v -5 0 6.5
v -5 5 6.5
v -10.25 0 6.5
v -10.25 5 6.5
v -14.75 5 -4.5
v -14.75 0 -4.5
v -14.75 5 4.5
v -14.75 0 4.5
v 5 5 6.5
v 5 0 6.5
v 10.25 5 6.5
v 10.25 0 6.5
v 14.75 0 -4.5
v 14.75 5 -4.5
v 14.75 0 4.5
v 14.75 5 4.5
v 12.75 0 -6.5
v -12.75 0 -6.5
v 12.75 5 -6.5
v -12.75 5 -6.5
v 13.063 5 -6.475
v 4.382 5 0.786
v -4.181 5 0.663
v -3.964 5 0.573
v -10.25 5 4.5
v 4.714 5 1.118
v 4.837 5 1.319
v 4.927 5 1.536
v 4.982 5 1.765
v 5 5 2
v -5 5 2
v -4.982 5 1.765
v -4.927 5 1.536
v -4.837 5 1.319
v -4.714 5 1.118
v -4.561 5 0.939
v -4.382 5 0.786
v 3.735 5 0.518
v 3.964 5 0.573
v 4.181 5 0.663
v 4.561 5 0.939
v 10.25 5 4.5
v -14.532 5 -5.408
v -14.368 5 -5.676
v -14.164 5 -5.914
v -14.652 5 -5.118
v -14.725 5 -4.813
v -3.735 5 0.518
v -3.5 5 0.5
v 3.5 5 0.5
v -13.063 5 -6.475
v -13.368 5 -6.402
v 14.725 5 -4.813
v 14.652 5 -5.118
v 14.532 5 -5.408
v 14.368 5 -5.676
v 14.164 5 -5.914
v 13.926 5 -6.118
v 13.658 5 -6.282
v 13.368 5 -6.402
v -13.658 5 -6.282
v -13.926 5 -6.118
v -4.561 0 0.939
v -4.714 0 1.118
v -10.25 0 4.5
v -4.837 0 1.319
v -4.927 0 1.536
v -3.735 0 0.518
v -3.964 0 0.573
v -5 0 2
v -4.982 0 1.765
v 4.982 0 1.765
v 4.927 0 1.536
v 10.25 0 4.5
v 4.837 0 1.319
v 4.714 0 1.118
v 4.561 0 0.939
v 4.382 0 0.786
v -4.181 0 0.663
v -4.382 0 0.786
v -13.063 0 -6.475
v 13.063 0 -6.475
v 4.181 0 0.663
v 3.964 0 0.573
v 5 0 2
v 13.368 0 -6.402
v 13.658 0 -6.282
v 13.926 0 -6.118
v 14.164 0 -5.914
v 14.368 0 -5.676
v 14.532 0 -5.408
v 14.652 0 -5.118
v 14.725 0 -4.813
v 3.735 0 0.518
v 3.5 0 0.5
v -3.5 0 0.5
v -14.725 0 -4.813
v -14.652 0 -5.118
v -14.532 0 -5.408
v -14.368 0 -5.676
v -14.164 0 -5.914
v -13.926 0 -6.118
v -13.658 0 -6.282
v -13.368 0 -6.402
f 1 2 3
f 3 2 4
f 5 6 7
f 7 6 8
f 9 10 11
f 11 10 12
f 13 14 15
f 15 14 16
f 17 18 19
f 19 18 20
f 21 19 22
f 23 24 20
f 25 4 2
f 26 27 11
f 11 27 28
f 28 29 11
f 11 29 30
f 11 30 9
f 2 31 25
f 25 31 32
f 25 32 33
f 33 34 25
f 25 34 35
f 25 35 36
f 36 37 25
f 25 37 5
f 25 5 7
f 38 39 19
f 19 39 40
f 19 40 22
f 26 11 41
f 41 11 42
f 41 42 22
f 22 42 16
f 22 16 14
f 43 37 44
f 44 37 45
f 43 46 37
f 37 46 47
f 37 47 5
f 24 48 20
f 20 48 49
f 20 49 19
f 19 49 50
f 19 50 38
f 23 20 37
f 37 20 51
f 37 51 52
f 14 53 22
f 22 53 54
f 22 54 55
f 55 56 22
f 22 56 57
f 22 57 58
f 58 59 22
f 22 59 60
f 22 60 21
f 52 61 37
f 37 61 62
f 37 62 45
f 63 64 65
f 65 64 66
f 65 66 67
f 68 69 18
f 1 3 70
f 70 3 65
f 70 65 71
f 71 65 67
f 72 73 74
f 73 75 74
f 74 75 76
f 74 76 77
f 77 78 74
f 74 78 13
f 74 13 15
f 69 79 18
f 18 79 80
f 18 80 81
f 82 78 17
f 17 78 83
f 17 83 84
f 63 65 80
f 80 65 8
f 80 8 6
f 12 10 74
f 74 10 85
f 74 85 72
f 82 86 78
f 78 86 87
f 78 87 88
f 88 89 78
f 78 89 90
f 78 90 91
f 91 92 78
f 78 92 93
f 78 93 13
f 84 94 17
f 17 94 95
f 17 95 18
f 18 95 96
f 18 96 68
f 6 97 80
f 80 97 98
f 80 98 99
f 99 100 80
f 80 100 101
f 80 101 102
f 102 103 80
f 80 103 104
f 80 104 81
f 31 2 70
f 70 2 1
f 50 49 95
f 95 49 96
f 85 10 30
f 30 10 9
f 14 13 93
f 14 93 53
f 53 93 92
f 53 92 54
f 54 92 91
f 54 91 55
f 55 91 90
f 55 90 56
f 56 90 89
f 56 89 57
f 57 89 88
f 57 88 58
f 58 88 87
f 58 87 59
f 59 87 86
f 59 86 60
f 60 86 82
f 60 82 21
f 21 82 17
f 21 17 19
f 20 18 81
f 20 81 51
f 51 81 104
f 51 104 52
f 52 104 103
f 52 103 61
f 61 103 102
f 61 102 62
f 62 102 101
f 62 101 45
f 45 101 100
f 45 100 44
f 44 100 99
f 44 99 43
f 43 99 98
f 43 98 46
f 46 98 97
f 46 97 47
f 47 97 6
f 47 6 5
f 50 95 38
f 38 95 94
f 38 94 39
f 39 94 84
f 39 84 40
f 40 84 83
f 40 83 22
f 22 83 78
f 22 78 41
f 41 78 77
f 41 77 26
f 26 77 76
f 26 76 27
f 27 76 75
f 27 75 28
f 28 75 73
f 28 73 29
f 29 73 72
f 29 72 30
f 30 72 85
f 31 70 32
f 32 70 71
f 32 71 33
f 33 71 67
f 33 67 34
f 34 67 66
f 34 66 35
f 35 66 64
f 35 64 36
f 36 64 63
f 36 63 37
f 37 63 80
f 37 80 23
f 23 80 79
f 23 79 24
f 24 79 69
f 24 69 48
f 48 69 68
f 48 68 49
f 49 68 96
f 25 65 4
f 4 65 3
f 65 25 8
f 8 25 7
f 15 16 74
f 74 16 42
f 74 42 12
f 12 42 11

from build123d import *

# Parameters (mm, degrees)
SKETCH1_W           = 29.5
SKETCH1_H           = 13
BOSS_EXTRUDE1_DEPTH = 5
SKETCH2_W           = 10
SKETCH2_H           = 6
CUT_EXTRUDE1_DEPTH  = 6
FILLET1_R           = 2
FILLET2_R           = 1.5
SKETCH3_OUTSIDE_W   = 38.024
SKETCH3_OUTSIDE_H   = 13.524
SKETCH3_OUTSIDE_W_2 = 20.5
SKETCH3_OUTSIDE_H_2 = 5
CUT_EXTRUDE2_DEPTH  = 2


with BuildPart() as part:
    # Sketch1 → Boss-Extrude1 (new body)
    with BuildSketch(Plane(origin=(0, 0, 0), x_dir=(1, 0, 0), z_dir=(0, 1, 0))):
        Rectangle(SKETCH1_W, SKETCH1_H)
    extrude(amount=BOSS_EXTRUDE1_DEPTH)

    # Sketch2 → Cut-Extrude1 (cut, through all)
    with BuildSketch(Plane(origin=(0, 5, 0), x_dir=(1, 0, 0), z_dir=(0, 1, 0))):
        with Locations((0, -3.5)):
            Rectangle(SKETCH2_W, SKETCH2_H)
    extrude(amount=-CUT_EXTRUDE1_DEPTH, mode=Mode.SUBTRACT)

    # Fillet1
    fillet1_edges = [part.edges().sort_by_distance(p)[0] for p in [
        (-14.75, 2.5, -6.5),
        (14.75, 2.5, -6.5),
    ]]
    fillet(fillet1_edges, radius=FILLET1_R)

    # Fillet2
    fillet2_edges = [part.edges().sort_by_distance(p)[0] for p in [
        (-5, 2.5, 0.5),
        (5, 2.5, 0.5),
    ]]
    fillet(fillet2_edges, radius=FILLET2_R)

    # Sketch3 outside → Cut-Extrude2 (cut)
    with BuildSketch(Plane.XY.offset(6.5)):
        with Locations((0, 2.5)):
            Rectangle(SKETCH3_OUTSIDE_W, SKETCH3_OUTSIDE_H)
        with Locations((0, 2.5)):
            Rectangle(SKETCH3_OUTSIDE_W_2, SKETCH3_OUTSIDE_H_2, mode=Mode.SUBTRACT)
    extrude(amount=-CUT_EXTRUDE2_DEPTH, mode=Mode.SUBTRACT)


solid = part.part
